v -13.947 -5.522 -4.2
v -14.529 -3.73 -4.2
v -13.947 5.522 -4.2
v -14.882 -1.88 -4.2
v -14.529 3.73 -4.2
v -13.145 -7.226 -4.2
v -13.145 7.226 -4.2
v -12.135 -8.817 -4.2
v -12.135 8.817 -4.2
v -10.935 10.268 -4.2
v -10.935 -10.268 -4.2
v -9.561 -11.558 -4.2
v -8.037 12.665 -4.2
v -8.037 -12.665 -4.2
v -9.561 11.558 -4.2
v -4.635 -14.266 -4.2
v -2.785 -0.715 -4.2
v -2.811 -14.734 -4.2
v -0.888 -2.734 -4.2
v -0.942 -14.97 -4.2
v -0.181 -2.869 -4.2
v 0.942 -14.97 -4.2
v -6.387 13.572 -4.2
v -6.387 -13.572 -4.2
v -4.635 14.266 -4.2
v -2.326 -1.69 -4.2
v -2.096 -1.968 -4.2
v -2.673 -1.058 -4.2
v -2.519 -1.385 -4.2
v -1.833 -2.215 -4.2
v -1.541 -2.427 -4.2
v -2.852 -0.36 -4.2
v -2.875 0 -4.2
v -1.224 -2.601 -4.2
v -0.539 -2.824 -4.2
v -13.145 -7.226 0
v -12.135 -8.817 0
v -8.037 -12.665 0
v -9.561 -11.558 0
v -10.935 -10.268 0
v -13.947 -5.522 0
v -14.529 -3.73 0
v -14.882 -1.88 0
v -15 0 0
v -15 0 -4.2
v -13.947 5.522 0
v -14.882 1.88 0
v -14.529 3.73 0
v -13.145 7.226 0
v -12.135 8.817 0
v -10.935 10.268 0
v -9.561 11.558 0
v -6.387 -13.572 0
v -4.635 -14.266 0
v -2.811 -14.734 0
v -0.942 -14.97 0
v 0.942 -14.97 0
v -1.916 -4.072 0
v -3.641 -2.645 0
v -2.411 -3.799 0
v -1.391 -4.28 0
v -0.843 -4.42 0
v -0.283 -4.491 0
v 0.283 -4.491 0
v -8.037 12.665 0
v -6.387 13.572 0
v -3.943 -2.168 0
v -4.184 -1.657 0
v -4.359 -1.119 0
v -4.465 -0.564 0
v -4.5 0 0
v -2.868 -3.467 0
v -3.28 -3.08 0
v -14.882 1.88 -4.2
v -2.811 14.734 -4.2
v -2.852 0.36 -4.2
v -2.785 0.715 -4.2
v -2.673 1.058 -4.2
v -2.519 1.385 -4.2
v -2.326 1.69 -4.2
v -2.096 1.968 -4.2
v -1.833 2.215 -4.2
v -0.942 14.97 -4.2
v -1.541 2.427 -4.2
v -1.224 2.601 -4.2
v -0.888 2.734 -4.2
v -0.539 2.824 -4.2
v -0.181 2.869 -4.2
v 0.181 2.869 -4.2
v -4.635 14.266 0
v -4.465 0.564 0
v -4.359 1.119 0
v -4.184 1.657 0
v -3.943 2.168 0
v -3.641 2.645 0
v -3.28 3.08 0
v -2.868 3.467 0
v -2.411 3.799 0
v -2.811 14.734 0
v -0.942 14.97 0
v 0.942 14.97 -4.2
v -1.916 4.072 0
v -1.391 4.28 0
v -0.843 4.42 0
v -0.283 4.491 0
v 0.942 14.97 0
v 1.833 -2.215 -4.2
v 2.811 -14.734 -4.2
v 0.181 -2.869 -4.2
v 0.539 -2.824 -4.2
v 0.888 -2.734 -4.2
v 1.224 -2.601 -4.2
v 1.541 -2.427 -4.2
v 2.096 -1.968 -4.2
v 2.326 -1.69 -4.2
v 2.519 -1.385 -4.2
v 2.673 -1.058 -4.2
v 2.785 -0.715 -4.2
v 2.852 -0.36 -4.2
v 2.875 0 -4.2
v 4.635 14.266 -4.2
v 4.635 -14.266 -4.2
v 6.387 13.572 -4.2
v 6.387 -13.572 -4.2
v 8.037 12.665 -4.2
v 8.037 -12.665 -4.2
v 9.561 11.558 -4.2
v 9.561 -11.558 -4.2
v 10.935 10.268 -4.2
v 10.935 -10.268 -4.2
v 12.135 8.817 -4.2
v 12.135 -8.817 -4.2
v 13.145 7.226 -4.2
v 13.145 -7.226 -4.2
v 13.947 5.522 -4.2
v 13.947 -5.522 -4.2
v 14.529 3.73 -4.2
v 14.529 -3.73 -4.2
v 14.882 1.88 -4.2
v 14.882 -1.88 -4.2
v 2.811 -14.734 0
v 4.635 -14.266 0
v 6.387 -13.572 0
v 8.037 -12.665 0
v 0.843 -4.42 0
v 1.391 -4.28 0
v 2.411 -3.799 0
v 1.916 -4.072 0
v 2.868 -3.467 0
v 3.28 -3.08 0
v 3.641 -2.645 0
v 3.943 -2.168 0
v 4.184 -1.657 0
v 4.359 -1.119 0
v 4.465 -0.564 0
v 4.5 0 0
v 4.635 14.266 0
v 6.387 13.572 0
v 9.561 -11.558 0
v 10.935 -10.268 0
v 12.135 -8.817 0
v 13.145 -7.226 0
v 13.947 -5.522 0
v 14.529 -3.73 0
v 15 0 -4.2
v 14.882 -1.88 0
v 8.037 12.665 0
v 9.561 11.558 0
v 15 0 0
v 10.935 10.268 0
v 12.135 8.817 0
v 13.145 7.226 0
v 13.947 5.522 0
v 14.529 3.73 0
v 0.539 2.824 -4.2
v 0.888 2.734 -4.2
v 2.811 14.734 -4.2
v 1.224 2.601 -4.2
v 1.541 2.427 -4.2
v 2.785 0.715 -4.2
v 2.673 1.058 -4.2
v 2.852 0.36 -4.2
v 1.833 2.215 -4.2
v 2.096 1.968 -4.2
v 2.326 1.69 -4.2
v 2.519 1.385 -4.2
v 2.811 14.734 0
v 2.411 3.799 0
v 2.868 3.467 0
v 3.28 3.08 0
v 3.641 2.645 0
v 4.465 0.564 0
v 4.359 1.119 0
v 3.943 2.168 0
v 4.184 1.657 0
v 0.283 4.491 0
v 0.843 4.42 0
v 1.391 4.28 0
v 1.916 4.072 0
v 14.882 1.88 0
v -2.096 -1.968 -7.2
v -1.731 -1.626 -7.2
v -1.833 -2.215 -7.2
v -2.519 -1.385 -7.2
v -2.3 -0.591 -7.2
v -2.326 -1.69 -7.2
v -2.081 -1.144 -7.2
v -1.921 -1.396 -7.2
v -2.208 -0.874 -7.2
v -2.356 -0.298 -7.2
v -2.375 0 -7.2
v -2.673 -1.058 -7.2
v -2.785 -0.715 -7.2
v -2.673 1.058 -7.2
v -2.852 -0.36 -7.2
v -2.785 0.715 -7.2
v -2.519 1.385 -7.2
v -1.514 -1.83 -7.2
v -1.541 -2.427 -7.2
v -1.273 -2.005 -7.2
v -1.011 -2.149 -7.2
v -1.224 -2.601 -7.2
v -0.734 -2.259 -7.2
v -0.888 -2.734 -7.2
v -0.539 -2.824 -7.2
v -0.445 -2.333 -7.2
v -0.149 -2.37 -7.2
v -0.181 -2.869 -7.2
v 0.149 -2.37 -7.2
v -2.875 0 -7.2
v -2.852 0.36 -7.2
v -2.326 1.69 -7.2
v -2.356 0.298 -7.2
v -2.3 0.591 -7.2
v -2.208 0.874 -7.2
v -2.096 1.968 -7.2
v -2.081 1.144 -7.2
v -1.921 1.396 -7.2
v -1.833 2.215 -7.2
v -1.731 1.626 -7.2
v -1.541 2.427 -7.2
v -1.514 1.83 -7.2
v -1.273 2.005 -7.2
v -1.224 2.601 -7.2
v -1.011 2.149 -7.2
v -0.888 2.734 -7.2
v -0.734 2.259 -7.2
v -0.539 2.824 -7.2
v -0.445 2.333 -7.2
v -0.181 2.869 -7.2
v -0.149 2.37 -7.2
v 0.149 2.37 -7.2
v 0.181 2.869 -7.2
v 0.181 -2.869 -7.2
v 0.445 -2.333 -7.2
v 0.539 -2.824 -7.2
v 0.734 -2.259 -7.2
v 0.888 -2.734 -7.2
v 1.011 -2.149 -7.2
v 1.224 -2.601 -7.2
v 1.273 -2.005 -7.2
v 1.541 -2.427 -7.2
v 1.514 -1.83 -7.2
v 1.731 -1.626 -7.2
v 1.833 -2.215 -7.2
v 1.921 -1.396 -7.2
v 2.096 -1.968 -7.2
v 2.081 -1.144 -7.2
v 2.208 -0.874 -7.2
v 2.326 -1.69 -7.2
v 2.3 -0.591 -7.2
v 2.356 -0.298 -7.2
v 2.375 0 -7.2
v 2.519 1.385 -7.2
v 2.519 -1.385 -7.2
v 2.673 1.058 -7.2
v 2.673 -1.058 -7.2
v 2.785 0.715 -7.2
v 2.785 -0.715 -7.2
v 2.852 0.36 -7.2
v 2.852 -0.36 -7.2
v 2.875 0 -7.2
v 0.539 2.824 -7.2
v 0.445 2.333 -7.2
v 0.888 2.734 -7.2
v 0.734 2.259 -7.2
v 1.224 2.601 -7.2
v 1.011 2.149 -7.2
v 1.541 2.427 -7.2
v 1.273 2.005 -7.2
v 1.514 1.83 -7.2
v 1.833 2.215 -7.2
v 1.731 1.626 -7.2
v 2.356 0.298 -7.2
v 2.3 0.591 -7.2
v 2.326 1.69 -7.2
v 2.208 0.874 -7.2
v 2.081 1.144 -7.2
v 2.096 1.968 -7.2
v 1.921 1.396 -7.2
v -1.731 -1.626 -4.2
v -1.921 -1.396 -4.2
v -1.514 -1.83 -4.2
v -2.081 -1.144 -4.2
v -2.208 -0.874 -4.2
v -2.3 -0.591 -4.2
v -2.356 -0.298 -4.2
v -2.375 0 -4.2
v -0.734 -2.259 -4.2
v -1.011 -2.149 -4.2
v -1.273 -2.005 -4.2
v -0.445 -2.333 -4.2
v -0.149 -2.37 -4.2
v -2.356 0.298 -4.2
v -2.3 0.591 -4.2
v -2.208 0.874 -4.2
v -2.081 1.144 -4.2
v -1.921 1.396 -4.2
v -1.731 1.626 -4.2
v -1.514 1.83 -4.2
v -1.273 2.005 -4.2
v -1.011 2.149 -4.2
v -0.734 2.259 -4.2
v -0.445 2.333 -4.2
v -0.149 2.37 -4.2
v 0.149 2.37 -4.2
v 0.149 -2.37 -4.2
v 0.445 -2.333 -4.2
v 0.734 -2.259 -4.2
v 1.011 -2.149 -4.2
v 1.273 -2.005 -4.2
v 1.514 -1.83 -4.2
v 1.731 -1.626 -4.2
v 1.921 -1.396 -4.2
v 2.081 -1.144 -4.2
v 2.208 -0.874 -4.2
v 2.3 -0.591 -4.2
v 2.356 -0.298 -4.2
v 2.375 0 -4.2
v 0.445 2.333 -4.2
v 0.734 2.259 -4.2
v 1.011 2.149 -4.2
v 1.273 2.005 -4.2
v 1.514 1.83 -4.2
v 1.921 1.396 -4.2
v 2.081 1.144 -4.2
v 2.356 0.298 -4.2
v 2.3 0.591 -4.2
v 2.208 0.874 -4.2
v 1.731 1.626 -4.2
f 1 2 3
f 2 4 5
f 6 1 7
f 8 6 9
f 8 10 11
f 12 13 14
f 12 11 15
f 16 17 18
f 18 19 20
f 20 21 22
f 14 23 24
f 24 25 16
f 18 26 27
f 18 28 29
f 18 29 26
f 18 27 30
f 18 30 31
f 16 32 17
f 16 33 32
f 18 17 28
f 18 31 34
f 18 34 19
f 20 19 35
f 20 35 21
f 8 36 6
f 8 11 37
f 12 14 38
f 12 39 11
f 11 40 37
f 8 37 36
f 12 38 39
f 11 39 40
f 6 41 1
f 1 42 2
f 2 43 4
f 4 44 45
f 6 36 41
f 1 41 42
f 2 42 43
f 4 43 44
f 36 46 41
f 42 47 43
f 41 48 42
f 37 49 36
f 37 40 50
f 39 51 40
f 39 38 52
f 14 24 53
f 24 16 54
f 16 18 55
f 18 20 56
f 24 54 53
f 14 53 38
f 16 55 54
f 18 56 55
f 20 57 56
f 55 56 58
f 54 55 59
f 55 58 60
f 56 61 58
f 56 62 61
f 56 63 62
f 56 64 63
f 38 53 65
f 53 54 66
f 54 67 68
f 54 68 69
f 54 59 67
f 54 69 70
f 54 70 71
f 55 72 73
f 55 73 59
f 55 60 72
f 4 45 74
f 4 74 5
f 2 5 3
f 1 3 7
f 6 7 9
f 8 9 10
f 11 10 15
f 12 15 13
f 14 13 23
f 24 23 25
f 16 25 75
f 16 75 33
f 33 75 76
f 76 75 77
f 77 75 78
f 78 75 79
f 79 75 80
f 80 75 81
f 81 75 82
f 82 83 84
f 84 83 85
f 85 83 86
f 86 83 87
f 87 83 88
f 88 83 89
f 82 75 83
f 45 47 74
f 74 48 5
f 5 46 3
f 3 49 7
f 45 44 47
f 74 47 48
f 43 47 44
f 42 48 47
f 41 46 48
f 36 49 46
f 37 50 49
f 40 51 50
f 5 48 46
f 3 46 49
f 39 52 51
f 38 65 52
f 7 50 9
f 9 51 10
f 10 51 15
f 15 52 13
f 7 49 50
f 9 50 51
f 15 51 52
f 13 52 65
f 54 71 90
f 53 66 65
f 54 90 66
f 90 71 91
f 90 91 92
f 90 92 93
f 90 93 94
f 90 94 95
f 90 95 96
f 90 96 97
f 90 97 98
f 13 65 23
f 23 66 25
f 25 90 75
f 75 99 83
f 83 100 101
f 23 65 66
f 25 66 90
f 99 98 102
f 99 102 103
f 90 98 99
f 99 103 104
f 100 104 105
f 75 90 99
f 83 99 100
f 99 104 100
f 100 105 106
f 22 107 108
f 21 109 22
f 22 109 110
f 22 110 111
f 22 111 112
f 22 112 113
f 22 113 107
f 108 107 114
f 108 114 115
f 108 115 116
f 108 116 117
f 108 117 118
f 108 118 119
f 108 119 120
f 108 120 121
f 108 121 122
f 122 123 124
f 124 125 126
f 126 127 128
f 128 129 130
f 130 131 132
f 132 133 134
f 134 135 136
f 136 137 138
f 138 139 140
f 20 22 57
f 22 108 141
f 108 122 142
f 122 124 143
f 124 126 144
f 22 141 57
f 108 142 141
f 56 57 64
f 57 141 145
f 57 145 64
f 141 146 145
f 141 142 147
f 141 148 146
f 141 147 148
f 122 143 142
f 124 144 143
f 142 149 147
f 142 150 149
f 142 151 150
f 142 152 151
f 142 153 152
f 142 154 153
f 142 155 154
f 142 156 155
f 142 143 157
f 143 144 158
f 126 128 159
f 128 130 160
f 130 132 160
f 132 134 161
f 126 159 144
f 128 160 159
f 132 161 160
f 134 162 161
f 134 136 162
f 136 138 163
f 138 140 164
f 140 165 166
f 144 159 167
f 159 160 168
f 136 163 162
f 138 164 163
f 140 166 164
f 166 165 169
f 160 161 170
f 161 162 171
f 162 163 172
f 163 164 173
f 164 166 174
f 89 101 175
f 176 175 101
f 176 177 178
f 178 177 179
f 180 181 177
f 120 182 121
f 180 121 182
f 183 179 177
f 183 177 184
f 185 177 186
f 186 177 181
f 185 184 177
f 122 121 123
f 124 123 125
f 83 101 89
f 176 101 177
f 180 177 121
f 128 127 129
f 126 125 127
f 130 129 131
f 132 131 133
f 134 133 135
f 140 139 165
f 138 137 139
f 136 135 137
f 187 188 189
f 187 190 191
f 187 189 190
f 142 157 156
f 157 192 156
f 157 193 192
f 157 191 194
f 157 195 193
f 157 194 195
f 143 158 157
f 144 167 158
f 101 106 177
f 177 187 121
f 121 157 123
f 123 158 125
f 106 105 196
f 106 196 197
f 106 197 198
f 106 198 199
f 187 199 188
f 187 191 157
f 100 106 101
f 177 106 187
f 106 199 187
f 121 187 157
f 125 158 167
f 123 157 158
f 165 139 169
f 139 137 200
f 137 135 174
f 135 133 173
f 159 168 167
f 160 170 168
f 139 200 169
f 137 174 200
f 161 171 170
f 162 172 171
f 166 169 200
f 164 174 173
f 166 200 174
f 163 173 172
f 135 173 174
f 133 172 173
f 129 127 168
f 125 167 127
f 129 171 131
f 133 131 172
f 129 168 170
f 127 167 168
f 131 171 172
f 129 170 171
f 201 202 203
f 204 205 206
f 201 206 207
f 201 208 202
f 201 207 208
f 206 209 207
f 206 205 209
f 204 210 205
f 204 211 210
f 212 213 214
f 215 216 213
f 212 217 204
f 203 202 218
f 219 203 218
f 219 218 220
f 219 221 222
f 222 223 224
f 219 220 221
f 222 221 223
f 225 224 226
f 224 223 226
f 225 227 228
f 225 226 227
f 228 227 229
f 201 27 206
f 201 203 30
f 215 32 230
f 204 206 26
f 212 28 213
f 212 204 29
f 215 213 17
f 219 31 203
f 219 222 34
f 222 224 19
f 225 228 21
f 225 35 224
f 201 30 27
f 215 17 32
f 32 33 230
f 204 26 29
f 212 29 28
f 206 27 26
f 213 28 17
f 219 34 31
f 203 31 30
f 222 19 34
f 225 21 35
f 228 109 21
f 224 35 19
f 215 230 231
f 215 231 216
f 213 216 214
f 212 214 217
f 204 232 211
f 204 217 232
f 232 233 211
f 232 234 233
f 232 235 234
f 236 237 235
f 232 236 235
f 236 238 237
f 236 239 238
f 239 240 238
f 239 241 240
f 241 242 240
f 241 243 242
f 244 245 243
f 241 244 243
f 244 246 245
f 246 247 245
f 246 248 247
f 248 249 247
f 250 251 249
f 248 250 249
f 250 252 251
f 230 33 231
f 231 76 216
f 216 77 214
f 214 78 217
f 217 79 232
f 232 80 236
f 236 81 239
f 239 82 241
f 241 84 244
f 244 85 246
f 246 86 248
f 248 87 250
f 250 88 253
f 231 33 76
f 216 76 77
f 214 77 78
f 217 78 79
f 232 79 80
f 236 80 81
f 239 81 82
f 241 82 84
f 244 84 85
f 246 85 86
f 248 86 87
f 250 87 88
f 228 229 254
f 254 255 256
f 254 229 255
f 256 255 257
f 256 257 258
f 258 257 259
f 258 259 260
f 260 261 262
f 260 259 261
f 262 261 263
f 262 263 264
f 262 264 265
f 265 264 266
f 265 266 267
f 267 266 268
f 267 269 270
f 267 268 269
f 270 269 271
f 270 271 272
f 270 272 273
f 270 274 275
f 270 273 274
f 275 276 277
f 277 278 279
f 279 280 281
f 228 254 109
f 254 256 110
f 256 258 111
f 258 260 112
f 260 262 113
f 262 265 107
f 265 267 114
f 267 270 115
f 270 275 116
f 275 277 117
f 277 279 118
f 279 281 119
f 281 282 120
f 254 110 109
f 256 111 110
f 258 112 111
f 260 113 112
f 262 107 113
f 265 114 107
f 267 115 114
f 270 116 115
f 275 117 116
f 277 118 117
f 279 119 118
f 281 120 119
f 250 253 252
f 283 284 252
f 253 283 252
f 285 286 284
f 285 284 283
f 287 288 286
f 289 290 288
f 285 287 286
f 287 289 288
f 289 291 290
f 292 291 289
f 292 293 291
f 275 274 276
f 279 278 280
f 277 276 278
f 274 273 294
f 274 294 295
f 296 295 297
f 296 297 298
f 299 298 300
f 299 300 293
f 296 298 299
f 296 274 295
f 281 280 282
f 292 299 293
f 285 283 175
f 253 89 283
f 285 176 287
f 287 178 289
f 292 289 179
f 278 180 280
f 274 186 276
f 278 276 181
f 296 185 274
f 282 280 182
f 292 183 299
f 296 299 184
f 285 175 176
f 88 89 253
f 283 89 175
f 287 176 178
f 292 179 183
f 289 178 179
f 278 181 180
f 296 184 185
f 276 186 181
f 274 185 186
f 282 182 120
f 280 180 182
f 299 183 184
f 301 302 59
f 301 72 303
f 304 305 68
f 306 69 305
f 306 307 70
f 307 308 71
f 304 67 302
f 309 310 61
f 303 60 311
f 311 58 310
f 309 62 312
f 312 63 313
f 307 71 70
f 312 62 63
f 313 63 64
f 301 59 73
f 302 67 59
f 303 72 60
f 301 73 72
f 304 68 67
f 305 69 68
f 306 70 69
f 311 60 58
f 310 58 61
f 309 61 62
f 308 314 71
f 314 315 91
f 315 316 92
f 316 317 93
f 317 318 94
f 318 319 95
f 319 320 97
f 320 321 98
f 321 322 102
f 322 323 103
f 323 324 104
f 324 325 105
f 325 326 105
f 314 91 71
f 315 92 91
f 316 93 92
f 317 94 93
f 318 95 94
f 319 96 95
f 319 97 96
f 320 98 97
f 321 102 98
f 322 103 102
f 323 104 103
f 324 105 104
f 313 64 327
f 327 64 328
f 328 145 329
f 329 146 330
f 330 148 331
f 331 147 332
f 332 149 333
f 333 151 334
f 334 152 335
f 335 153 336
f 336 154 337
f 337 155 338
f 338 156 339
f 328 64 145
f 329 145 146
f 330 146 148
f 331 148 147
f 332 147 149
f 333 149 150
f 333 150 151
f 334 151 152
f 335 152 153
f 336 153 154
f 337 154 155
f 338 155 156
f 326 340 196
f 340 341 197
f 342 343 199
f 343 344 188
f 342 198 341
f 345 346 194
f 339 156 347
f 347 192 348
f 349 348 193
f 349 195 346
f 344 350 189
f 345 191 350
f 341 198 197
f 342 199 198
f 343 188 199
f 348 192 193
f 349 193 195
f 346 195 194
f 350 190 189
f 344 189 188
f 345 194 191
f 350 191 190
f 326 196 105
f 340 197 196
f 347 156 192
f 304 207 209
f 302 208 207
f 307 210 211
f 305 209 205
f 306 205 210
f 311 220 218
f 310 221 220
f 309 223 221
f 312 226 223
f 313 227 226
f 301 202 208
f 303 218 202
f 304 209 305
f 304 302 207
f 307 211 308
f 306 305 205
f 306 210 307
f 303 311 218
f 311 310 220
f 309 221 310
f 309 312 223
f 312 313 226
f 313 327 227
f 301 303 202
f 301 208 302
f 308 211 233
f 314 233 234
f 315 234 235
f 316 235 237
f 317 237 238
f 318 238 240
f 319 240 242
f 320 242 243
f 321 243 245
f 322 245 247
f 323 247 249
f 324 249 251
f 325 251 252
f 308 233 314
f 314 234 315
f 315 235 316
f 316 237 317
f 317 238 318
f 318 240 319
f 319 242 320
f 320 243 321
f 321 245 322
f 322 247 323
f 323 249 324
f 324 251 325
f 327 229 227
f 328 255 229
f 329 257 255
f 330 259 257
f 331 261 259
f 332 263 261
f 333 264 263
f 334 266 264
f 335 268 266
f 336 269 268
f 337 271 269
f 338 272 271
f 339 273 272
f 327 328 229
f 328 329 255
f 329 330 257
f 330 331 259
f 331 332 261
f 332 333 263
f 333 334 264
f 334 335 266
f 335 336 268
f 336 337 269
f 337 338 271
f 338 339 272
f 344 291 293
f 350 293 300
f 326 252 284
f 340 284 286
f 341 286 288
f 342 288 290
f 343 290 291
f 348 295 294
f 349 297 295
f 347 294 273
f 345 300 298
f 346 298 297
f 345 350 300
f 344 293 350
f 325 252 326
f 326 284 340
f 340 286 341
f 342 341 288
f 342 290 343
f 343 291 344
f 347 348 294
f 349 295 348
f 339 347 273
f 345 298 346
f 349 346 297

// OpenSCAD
$fn = 50;

difference() {
	union() {
		translate(v = [0, 0, -4.2]) {
			cylinder(h = 4.2, r = 15.0);
		}
		#translate(v = [0, 0, -7.2]) {
			cylinder(h = 7.2, r = 2.875);
		}
	}
	union() {
		translate(v = [0, 0, 0]) {
			rotate(a = [0, 0, 0]) {
				difference() {
					union() {
						translate(v = [0, 0, -7.2]) {
							cylinder(h = 7.2, r = 2.25);
						}
						translate(v = [0, 0, -4.2]) {
							cylinder(h = 4.2, r1 = 2.375, r2 = 4.5);
						}
						translate(v = [0, 0, -7.2]) {
							cylinder(h = 7.2, r = 2.375);
						}
						translate(v = [0, 0, -7.2]) {
							cylinder(h = 7.2, r = 2.25);
						}
					}
					union();
				}
			}
		}
	}
}
